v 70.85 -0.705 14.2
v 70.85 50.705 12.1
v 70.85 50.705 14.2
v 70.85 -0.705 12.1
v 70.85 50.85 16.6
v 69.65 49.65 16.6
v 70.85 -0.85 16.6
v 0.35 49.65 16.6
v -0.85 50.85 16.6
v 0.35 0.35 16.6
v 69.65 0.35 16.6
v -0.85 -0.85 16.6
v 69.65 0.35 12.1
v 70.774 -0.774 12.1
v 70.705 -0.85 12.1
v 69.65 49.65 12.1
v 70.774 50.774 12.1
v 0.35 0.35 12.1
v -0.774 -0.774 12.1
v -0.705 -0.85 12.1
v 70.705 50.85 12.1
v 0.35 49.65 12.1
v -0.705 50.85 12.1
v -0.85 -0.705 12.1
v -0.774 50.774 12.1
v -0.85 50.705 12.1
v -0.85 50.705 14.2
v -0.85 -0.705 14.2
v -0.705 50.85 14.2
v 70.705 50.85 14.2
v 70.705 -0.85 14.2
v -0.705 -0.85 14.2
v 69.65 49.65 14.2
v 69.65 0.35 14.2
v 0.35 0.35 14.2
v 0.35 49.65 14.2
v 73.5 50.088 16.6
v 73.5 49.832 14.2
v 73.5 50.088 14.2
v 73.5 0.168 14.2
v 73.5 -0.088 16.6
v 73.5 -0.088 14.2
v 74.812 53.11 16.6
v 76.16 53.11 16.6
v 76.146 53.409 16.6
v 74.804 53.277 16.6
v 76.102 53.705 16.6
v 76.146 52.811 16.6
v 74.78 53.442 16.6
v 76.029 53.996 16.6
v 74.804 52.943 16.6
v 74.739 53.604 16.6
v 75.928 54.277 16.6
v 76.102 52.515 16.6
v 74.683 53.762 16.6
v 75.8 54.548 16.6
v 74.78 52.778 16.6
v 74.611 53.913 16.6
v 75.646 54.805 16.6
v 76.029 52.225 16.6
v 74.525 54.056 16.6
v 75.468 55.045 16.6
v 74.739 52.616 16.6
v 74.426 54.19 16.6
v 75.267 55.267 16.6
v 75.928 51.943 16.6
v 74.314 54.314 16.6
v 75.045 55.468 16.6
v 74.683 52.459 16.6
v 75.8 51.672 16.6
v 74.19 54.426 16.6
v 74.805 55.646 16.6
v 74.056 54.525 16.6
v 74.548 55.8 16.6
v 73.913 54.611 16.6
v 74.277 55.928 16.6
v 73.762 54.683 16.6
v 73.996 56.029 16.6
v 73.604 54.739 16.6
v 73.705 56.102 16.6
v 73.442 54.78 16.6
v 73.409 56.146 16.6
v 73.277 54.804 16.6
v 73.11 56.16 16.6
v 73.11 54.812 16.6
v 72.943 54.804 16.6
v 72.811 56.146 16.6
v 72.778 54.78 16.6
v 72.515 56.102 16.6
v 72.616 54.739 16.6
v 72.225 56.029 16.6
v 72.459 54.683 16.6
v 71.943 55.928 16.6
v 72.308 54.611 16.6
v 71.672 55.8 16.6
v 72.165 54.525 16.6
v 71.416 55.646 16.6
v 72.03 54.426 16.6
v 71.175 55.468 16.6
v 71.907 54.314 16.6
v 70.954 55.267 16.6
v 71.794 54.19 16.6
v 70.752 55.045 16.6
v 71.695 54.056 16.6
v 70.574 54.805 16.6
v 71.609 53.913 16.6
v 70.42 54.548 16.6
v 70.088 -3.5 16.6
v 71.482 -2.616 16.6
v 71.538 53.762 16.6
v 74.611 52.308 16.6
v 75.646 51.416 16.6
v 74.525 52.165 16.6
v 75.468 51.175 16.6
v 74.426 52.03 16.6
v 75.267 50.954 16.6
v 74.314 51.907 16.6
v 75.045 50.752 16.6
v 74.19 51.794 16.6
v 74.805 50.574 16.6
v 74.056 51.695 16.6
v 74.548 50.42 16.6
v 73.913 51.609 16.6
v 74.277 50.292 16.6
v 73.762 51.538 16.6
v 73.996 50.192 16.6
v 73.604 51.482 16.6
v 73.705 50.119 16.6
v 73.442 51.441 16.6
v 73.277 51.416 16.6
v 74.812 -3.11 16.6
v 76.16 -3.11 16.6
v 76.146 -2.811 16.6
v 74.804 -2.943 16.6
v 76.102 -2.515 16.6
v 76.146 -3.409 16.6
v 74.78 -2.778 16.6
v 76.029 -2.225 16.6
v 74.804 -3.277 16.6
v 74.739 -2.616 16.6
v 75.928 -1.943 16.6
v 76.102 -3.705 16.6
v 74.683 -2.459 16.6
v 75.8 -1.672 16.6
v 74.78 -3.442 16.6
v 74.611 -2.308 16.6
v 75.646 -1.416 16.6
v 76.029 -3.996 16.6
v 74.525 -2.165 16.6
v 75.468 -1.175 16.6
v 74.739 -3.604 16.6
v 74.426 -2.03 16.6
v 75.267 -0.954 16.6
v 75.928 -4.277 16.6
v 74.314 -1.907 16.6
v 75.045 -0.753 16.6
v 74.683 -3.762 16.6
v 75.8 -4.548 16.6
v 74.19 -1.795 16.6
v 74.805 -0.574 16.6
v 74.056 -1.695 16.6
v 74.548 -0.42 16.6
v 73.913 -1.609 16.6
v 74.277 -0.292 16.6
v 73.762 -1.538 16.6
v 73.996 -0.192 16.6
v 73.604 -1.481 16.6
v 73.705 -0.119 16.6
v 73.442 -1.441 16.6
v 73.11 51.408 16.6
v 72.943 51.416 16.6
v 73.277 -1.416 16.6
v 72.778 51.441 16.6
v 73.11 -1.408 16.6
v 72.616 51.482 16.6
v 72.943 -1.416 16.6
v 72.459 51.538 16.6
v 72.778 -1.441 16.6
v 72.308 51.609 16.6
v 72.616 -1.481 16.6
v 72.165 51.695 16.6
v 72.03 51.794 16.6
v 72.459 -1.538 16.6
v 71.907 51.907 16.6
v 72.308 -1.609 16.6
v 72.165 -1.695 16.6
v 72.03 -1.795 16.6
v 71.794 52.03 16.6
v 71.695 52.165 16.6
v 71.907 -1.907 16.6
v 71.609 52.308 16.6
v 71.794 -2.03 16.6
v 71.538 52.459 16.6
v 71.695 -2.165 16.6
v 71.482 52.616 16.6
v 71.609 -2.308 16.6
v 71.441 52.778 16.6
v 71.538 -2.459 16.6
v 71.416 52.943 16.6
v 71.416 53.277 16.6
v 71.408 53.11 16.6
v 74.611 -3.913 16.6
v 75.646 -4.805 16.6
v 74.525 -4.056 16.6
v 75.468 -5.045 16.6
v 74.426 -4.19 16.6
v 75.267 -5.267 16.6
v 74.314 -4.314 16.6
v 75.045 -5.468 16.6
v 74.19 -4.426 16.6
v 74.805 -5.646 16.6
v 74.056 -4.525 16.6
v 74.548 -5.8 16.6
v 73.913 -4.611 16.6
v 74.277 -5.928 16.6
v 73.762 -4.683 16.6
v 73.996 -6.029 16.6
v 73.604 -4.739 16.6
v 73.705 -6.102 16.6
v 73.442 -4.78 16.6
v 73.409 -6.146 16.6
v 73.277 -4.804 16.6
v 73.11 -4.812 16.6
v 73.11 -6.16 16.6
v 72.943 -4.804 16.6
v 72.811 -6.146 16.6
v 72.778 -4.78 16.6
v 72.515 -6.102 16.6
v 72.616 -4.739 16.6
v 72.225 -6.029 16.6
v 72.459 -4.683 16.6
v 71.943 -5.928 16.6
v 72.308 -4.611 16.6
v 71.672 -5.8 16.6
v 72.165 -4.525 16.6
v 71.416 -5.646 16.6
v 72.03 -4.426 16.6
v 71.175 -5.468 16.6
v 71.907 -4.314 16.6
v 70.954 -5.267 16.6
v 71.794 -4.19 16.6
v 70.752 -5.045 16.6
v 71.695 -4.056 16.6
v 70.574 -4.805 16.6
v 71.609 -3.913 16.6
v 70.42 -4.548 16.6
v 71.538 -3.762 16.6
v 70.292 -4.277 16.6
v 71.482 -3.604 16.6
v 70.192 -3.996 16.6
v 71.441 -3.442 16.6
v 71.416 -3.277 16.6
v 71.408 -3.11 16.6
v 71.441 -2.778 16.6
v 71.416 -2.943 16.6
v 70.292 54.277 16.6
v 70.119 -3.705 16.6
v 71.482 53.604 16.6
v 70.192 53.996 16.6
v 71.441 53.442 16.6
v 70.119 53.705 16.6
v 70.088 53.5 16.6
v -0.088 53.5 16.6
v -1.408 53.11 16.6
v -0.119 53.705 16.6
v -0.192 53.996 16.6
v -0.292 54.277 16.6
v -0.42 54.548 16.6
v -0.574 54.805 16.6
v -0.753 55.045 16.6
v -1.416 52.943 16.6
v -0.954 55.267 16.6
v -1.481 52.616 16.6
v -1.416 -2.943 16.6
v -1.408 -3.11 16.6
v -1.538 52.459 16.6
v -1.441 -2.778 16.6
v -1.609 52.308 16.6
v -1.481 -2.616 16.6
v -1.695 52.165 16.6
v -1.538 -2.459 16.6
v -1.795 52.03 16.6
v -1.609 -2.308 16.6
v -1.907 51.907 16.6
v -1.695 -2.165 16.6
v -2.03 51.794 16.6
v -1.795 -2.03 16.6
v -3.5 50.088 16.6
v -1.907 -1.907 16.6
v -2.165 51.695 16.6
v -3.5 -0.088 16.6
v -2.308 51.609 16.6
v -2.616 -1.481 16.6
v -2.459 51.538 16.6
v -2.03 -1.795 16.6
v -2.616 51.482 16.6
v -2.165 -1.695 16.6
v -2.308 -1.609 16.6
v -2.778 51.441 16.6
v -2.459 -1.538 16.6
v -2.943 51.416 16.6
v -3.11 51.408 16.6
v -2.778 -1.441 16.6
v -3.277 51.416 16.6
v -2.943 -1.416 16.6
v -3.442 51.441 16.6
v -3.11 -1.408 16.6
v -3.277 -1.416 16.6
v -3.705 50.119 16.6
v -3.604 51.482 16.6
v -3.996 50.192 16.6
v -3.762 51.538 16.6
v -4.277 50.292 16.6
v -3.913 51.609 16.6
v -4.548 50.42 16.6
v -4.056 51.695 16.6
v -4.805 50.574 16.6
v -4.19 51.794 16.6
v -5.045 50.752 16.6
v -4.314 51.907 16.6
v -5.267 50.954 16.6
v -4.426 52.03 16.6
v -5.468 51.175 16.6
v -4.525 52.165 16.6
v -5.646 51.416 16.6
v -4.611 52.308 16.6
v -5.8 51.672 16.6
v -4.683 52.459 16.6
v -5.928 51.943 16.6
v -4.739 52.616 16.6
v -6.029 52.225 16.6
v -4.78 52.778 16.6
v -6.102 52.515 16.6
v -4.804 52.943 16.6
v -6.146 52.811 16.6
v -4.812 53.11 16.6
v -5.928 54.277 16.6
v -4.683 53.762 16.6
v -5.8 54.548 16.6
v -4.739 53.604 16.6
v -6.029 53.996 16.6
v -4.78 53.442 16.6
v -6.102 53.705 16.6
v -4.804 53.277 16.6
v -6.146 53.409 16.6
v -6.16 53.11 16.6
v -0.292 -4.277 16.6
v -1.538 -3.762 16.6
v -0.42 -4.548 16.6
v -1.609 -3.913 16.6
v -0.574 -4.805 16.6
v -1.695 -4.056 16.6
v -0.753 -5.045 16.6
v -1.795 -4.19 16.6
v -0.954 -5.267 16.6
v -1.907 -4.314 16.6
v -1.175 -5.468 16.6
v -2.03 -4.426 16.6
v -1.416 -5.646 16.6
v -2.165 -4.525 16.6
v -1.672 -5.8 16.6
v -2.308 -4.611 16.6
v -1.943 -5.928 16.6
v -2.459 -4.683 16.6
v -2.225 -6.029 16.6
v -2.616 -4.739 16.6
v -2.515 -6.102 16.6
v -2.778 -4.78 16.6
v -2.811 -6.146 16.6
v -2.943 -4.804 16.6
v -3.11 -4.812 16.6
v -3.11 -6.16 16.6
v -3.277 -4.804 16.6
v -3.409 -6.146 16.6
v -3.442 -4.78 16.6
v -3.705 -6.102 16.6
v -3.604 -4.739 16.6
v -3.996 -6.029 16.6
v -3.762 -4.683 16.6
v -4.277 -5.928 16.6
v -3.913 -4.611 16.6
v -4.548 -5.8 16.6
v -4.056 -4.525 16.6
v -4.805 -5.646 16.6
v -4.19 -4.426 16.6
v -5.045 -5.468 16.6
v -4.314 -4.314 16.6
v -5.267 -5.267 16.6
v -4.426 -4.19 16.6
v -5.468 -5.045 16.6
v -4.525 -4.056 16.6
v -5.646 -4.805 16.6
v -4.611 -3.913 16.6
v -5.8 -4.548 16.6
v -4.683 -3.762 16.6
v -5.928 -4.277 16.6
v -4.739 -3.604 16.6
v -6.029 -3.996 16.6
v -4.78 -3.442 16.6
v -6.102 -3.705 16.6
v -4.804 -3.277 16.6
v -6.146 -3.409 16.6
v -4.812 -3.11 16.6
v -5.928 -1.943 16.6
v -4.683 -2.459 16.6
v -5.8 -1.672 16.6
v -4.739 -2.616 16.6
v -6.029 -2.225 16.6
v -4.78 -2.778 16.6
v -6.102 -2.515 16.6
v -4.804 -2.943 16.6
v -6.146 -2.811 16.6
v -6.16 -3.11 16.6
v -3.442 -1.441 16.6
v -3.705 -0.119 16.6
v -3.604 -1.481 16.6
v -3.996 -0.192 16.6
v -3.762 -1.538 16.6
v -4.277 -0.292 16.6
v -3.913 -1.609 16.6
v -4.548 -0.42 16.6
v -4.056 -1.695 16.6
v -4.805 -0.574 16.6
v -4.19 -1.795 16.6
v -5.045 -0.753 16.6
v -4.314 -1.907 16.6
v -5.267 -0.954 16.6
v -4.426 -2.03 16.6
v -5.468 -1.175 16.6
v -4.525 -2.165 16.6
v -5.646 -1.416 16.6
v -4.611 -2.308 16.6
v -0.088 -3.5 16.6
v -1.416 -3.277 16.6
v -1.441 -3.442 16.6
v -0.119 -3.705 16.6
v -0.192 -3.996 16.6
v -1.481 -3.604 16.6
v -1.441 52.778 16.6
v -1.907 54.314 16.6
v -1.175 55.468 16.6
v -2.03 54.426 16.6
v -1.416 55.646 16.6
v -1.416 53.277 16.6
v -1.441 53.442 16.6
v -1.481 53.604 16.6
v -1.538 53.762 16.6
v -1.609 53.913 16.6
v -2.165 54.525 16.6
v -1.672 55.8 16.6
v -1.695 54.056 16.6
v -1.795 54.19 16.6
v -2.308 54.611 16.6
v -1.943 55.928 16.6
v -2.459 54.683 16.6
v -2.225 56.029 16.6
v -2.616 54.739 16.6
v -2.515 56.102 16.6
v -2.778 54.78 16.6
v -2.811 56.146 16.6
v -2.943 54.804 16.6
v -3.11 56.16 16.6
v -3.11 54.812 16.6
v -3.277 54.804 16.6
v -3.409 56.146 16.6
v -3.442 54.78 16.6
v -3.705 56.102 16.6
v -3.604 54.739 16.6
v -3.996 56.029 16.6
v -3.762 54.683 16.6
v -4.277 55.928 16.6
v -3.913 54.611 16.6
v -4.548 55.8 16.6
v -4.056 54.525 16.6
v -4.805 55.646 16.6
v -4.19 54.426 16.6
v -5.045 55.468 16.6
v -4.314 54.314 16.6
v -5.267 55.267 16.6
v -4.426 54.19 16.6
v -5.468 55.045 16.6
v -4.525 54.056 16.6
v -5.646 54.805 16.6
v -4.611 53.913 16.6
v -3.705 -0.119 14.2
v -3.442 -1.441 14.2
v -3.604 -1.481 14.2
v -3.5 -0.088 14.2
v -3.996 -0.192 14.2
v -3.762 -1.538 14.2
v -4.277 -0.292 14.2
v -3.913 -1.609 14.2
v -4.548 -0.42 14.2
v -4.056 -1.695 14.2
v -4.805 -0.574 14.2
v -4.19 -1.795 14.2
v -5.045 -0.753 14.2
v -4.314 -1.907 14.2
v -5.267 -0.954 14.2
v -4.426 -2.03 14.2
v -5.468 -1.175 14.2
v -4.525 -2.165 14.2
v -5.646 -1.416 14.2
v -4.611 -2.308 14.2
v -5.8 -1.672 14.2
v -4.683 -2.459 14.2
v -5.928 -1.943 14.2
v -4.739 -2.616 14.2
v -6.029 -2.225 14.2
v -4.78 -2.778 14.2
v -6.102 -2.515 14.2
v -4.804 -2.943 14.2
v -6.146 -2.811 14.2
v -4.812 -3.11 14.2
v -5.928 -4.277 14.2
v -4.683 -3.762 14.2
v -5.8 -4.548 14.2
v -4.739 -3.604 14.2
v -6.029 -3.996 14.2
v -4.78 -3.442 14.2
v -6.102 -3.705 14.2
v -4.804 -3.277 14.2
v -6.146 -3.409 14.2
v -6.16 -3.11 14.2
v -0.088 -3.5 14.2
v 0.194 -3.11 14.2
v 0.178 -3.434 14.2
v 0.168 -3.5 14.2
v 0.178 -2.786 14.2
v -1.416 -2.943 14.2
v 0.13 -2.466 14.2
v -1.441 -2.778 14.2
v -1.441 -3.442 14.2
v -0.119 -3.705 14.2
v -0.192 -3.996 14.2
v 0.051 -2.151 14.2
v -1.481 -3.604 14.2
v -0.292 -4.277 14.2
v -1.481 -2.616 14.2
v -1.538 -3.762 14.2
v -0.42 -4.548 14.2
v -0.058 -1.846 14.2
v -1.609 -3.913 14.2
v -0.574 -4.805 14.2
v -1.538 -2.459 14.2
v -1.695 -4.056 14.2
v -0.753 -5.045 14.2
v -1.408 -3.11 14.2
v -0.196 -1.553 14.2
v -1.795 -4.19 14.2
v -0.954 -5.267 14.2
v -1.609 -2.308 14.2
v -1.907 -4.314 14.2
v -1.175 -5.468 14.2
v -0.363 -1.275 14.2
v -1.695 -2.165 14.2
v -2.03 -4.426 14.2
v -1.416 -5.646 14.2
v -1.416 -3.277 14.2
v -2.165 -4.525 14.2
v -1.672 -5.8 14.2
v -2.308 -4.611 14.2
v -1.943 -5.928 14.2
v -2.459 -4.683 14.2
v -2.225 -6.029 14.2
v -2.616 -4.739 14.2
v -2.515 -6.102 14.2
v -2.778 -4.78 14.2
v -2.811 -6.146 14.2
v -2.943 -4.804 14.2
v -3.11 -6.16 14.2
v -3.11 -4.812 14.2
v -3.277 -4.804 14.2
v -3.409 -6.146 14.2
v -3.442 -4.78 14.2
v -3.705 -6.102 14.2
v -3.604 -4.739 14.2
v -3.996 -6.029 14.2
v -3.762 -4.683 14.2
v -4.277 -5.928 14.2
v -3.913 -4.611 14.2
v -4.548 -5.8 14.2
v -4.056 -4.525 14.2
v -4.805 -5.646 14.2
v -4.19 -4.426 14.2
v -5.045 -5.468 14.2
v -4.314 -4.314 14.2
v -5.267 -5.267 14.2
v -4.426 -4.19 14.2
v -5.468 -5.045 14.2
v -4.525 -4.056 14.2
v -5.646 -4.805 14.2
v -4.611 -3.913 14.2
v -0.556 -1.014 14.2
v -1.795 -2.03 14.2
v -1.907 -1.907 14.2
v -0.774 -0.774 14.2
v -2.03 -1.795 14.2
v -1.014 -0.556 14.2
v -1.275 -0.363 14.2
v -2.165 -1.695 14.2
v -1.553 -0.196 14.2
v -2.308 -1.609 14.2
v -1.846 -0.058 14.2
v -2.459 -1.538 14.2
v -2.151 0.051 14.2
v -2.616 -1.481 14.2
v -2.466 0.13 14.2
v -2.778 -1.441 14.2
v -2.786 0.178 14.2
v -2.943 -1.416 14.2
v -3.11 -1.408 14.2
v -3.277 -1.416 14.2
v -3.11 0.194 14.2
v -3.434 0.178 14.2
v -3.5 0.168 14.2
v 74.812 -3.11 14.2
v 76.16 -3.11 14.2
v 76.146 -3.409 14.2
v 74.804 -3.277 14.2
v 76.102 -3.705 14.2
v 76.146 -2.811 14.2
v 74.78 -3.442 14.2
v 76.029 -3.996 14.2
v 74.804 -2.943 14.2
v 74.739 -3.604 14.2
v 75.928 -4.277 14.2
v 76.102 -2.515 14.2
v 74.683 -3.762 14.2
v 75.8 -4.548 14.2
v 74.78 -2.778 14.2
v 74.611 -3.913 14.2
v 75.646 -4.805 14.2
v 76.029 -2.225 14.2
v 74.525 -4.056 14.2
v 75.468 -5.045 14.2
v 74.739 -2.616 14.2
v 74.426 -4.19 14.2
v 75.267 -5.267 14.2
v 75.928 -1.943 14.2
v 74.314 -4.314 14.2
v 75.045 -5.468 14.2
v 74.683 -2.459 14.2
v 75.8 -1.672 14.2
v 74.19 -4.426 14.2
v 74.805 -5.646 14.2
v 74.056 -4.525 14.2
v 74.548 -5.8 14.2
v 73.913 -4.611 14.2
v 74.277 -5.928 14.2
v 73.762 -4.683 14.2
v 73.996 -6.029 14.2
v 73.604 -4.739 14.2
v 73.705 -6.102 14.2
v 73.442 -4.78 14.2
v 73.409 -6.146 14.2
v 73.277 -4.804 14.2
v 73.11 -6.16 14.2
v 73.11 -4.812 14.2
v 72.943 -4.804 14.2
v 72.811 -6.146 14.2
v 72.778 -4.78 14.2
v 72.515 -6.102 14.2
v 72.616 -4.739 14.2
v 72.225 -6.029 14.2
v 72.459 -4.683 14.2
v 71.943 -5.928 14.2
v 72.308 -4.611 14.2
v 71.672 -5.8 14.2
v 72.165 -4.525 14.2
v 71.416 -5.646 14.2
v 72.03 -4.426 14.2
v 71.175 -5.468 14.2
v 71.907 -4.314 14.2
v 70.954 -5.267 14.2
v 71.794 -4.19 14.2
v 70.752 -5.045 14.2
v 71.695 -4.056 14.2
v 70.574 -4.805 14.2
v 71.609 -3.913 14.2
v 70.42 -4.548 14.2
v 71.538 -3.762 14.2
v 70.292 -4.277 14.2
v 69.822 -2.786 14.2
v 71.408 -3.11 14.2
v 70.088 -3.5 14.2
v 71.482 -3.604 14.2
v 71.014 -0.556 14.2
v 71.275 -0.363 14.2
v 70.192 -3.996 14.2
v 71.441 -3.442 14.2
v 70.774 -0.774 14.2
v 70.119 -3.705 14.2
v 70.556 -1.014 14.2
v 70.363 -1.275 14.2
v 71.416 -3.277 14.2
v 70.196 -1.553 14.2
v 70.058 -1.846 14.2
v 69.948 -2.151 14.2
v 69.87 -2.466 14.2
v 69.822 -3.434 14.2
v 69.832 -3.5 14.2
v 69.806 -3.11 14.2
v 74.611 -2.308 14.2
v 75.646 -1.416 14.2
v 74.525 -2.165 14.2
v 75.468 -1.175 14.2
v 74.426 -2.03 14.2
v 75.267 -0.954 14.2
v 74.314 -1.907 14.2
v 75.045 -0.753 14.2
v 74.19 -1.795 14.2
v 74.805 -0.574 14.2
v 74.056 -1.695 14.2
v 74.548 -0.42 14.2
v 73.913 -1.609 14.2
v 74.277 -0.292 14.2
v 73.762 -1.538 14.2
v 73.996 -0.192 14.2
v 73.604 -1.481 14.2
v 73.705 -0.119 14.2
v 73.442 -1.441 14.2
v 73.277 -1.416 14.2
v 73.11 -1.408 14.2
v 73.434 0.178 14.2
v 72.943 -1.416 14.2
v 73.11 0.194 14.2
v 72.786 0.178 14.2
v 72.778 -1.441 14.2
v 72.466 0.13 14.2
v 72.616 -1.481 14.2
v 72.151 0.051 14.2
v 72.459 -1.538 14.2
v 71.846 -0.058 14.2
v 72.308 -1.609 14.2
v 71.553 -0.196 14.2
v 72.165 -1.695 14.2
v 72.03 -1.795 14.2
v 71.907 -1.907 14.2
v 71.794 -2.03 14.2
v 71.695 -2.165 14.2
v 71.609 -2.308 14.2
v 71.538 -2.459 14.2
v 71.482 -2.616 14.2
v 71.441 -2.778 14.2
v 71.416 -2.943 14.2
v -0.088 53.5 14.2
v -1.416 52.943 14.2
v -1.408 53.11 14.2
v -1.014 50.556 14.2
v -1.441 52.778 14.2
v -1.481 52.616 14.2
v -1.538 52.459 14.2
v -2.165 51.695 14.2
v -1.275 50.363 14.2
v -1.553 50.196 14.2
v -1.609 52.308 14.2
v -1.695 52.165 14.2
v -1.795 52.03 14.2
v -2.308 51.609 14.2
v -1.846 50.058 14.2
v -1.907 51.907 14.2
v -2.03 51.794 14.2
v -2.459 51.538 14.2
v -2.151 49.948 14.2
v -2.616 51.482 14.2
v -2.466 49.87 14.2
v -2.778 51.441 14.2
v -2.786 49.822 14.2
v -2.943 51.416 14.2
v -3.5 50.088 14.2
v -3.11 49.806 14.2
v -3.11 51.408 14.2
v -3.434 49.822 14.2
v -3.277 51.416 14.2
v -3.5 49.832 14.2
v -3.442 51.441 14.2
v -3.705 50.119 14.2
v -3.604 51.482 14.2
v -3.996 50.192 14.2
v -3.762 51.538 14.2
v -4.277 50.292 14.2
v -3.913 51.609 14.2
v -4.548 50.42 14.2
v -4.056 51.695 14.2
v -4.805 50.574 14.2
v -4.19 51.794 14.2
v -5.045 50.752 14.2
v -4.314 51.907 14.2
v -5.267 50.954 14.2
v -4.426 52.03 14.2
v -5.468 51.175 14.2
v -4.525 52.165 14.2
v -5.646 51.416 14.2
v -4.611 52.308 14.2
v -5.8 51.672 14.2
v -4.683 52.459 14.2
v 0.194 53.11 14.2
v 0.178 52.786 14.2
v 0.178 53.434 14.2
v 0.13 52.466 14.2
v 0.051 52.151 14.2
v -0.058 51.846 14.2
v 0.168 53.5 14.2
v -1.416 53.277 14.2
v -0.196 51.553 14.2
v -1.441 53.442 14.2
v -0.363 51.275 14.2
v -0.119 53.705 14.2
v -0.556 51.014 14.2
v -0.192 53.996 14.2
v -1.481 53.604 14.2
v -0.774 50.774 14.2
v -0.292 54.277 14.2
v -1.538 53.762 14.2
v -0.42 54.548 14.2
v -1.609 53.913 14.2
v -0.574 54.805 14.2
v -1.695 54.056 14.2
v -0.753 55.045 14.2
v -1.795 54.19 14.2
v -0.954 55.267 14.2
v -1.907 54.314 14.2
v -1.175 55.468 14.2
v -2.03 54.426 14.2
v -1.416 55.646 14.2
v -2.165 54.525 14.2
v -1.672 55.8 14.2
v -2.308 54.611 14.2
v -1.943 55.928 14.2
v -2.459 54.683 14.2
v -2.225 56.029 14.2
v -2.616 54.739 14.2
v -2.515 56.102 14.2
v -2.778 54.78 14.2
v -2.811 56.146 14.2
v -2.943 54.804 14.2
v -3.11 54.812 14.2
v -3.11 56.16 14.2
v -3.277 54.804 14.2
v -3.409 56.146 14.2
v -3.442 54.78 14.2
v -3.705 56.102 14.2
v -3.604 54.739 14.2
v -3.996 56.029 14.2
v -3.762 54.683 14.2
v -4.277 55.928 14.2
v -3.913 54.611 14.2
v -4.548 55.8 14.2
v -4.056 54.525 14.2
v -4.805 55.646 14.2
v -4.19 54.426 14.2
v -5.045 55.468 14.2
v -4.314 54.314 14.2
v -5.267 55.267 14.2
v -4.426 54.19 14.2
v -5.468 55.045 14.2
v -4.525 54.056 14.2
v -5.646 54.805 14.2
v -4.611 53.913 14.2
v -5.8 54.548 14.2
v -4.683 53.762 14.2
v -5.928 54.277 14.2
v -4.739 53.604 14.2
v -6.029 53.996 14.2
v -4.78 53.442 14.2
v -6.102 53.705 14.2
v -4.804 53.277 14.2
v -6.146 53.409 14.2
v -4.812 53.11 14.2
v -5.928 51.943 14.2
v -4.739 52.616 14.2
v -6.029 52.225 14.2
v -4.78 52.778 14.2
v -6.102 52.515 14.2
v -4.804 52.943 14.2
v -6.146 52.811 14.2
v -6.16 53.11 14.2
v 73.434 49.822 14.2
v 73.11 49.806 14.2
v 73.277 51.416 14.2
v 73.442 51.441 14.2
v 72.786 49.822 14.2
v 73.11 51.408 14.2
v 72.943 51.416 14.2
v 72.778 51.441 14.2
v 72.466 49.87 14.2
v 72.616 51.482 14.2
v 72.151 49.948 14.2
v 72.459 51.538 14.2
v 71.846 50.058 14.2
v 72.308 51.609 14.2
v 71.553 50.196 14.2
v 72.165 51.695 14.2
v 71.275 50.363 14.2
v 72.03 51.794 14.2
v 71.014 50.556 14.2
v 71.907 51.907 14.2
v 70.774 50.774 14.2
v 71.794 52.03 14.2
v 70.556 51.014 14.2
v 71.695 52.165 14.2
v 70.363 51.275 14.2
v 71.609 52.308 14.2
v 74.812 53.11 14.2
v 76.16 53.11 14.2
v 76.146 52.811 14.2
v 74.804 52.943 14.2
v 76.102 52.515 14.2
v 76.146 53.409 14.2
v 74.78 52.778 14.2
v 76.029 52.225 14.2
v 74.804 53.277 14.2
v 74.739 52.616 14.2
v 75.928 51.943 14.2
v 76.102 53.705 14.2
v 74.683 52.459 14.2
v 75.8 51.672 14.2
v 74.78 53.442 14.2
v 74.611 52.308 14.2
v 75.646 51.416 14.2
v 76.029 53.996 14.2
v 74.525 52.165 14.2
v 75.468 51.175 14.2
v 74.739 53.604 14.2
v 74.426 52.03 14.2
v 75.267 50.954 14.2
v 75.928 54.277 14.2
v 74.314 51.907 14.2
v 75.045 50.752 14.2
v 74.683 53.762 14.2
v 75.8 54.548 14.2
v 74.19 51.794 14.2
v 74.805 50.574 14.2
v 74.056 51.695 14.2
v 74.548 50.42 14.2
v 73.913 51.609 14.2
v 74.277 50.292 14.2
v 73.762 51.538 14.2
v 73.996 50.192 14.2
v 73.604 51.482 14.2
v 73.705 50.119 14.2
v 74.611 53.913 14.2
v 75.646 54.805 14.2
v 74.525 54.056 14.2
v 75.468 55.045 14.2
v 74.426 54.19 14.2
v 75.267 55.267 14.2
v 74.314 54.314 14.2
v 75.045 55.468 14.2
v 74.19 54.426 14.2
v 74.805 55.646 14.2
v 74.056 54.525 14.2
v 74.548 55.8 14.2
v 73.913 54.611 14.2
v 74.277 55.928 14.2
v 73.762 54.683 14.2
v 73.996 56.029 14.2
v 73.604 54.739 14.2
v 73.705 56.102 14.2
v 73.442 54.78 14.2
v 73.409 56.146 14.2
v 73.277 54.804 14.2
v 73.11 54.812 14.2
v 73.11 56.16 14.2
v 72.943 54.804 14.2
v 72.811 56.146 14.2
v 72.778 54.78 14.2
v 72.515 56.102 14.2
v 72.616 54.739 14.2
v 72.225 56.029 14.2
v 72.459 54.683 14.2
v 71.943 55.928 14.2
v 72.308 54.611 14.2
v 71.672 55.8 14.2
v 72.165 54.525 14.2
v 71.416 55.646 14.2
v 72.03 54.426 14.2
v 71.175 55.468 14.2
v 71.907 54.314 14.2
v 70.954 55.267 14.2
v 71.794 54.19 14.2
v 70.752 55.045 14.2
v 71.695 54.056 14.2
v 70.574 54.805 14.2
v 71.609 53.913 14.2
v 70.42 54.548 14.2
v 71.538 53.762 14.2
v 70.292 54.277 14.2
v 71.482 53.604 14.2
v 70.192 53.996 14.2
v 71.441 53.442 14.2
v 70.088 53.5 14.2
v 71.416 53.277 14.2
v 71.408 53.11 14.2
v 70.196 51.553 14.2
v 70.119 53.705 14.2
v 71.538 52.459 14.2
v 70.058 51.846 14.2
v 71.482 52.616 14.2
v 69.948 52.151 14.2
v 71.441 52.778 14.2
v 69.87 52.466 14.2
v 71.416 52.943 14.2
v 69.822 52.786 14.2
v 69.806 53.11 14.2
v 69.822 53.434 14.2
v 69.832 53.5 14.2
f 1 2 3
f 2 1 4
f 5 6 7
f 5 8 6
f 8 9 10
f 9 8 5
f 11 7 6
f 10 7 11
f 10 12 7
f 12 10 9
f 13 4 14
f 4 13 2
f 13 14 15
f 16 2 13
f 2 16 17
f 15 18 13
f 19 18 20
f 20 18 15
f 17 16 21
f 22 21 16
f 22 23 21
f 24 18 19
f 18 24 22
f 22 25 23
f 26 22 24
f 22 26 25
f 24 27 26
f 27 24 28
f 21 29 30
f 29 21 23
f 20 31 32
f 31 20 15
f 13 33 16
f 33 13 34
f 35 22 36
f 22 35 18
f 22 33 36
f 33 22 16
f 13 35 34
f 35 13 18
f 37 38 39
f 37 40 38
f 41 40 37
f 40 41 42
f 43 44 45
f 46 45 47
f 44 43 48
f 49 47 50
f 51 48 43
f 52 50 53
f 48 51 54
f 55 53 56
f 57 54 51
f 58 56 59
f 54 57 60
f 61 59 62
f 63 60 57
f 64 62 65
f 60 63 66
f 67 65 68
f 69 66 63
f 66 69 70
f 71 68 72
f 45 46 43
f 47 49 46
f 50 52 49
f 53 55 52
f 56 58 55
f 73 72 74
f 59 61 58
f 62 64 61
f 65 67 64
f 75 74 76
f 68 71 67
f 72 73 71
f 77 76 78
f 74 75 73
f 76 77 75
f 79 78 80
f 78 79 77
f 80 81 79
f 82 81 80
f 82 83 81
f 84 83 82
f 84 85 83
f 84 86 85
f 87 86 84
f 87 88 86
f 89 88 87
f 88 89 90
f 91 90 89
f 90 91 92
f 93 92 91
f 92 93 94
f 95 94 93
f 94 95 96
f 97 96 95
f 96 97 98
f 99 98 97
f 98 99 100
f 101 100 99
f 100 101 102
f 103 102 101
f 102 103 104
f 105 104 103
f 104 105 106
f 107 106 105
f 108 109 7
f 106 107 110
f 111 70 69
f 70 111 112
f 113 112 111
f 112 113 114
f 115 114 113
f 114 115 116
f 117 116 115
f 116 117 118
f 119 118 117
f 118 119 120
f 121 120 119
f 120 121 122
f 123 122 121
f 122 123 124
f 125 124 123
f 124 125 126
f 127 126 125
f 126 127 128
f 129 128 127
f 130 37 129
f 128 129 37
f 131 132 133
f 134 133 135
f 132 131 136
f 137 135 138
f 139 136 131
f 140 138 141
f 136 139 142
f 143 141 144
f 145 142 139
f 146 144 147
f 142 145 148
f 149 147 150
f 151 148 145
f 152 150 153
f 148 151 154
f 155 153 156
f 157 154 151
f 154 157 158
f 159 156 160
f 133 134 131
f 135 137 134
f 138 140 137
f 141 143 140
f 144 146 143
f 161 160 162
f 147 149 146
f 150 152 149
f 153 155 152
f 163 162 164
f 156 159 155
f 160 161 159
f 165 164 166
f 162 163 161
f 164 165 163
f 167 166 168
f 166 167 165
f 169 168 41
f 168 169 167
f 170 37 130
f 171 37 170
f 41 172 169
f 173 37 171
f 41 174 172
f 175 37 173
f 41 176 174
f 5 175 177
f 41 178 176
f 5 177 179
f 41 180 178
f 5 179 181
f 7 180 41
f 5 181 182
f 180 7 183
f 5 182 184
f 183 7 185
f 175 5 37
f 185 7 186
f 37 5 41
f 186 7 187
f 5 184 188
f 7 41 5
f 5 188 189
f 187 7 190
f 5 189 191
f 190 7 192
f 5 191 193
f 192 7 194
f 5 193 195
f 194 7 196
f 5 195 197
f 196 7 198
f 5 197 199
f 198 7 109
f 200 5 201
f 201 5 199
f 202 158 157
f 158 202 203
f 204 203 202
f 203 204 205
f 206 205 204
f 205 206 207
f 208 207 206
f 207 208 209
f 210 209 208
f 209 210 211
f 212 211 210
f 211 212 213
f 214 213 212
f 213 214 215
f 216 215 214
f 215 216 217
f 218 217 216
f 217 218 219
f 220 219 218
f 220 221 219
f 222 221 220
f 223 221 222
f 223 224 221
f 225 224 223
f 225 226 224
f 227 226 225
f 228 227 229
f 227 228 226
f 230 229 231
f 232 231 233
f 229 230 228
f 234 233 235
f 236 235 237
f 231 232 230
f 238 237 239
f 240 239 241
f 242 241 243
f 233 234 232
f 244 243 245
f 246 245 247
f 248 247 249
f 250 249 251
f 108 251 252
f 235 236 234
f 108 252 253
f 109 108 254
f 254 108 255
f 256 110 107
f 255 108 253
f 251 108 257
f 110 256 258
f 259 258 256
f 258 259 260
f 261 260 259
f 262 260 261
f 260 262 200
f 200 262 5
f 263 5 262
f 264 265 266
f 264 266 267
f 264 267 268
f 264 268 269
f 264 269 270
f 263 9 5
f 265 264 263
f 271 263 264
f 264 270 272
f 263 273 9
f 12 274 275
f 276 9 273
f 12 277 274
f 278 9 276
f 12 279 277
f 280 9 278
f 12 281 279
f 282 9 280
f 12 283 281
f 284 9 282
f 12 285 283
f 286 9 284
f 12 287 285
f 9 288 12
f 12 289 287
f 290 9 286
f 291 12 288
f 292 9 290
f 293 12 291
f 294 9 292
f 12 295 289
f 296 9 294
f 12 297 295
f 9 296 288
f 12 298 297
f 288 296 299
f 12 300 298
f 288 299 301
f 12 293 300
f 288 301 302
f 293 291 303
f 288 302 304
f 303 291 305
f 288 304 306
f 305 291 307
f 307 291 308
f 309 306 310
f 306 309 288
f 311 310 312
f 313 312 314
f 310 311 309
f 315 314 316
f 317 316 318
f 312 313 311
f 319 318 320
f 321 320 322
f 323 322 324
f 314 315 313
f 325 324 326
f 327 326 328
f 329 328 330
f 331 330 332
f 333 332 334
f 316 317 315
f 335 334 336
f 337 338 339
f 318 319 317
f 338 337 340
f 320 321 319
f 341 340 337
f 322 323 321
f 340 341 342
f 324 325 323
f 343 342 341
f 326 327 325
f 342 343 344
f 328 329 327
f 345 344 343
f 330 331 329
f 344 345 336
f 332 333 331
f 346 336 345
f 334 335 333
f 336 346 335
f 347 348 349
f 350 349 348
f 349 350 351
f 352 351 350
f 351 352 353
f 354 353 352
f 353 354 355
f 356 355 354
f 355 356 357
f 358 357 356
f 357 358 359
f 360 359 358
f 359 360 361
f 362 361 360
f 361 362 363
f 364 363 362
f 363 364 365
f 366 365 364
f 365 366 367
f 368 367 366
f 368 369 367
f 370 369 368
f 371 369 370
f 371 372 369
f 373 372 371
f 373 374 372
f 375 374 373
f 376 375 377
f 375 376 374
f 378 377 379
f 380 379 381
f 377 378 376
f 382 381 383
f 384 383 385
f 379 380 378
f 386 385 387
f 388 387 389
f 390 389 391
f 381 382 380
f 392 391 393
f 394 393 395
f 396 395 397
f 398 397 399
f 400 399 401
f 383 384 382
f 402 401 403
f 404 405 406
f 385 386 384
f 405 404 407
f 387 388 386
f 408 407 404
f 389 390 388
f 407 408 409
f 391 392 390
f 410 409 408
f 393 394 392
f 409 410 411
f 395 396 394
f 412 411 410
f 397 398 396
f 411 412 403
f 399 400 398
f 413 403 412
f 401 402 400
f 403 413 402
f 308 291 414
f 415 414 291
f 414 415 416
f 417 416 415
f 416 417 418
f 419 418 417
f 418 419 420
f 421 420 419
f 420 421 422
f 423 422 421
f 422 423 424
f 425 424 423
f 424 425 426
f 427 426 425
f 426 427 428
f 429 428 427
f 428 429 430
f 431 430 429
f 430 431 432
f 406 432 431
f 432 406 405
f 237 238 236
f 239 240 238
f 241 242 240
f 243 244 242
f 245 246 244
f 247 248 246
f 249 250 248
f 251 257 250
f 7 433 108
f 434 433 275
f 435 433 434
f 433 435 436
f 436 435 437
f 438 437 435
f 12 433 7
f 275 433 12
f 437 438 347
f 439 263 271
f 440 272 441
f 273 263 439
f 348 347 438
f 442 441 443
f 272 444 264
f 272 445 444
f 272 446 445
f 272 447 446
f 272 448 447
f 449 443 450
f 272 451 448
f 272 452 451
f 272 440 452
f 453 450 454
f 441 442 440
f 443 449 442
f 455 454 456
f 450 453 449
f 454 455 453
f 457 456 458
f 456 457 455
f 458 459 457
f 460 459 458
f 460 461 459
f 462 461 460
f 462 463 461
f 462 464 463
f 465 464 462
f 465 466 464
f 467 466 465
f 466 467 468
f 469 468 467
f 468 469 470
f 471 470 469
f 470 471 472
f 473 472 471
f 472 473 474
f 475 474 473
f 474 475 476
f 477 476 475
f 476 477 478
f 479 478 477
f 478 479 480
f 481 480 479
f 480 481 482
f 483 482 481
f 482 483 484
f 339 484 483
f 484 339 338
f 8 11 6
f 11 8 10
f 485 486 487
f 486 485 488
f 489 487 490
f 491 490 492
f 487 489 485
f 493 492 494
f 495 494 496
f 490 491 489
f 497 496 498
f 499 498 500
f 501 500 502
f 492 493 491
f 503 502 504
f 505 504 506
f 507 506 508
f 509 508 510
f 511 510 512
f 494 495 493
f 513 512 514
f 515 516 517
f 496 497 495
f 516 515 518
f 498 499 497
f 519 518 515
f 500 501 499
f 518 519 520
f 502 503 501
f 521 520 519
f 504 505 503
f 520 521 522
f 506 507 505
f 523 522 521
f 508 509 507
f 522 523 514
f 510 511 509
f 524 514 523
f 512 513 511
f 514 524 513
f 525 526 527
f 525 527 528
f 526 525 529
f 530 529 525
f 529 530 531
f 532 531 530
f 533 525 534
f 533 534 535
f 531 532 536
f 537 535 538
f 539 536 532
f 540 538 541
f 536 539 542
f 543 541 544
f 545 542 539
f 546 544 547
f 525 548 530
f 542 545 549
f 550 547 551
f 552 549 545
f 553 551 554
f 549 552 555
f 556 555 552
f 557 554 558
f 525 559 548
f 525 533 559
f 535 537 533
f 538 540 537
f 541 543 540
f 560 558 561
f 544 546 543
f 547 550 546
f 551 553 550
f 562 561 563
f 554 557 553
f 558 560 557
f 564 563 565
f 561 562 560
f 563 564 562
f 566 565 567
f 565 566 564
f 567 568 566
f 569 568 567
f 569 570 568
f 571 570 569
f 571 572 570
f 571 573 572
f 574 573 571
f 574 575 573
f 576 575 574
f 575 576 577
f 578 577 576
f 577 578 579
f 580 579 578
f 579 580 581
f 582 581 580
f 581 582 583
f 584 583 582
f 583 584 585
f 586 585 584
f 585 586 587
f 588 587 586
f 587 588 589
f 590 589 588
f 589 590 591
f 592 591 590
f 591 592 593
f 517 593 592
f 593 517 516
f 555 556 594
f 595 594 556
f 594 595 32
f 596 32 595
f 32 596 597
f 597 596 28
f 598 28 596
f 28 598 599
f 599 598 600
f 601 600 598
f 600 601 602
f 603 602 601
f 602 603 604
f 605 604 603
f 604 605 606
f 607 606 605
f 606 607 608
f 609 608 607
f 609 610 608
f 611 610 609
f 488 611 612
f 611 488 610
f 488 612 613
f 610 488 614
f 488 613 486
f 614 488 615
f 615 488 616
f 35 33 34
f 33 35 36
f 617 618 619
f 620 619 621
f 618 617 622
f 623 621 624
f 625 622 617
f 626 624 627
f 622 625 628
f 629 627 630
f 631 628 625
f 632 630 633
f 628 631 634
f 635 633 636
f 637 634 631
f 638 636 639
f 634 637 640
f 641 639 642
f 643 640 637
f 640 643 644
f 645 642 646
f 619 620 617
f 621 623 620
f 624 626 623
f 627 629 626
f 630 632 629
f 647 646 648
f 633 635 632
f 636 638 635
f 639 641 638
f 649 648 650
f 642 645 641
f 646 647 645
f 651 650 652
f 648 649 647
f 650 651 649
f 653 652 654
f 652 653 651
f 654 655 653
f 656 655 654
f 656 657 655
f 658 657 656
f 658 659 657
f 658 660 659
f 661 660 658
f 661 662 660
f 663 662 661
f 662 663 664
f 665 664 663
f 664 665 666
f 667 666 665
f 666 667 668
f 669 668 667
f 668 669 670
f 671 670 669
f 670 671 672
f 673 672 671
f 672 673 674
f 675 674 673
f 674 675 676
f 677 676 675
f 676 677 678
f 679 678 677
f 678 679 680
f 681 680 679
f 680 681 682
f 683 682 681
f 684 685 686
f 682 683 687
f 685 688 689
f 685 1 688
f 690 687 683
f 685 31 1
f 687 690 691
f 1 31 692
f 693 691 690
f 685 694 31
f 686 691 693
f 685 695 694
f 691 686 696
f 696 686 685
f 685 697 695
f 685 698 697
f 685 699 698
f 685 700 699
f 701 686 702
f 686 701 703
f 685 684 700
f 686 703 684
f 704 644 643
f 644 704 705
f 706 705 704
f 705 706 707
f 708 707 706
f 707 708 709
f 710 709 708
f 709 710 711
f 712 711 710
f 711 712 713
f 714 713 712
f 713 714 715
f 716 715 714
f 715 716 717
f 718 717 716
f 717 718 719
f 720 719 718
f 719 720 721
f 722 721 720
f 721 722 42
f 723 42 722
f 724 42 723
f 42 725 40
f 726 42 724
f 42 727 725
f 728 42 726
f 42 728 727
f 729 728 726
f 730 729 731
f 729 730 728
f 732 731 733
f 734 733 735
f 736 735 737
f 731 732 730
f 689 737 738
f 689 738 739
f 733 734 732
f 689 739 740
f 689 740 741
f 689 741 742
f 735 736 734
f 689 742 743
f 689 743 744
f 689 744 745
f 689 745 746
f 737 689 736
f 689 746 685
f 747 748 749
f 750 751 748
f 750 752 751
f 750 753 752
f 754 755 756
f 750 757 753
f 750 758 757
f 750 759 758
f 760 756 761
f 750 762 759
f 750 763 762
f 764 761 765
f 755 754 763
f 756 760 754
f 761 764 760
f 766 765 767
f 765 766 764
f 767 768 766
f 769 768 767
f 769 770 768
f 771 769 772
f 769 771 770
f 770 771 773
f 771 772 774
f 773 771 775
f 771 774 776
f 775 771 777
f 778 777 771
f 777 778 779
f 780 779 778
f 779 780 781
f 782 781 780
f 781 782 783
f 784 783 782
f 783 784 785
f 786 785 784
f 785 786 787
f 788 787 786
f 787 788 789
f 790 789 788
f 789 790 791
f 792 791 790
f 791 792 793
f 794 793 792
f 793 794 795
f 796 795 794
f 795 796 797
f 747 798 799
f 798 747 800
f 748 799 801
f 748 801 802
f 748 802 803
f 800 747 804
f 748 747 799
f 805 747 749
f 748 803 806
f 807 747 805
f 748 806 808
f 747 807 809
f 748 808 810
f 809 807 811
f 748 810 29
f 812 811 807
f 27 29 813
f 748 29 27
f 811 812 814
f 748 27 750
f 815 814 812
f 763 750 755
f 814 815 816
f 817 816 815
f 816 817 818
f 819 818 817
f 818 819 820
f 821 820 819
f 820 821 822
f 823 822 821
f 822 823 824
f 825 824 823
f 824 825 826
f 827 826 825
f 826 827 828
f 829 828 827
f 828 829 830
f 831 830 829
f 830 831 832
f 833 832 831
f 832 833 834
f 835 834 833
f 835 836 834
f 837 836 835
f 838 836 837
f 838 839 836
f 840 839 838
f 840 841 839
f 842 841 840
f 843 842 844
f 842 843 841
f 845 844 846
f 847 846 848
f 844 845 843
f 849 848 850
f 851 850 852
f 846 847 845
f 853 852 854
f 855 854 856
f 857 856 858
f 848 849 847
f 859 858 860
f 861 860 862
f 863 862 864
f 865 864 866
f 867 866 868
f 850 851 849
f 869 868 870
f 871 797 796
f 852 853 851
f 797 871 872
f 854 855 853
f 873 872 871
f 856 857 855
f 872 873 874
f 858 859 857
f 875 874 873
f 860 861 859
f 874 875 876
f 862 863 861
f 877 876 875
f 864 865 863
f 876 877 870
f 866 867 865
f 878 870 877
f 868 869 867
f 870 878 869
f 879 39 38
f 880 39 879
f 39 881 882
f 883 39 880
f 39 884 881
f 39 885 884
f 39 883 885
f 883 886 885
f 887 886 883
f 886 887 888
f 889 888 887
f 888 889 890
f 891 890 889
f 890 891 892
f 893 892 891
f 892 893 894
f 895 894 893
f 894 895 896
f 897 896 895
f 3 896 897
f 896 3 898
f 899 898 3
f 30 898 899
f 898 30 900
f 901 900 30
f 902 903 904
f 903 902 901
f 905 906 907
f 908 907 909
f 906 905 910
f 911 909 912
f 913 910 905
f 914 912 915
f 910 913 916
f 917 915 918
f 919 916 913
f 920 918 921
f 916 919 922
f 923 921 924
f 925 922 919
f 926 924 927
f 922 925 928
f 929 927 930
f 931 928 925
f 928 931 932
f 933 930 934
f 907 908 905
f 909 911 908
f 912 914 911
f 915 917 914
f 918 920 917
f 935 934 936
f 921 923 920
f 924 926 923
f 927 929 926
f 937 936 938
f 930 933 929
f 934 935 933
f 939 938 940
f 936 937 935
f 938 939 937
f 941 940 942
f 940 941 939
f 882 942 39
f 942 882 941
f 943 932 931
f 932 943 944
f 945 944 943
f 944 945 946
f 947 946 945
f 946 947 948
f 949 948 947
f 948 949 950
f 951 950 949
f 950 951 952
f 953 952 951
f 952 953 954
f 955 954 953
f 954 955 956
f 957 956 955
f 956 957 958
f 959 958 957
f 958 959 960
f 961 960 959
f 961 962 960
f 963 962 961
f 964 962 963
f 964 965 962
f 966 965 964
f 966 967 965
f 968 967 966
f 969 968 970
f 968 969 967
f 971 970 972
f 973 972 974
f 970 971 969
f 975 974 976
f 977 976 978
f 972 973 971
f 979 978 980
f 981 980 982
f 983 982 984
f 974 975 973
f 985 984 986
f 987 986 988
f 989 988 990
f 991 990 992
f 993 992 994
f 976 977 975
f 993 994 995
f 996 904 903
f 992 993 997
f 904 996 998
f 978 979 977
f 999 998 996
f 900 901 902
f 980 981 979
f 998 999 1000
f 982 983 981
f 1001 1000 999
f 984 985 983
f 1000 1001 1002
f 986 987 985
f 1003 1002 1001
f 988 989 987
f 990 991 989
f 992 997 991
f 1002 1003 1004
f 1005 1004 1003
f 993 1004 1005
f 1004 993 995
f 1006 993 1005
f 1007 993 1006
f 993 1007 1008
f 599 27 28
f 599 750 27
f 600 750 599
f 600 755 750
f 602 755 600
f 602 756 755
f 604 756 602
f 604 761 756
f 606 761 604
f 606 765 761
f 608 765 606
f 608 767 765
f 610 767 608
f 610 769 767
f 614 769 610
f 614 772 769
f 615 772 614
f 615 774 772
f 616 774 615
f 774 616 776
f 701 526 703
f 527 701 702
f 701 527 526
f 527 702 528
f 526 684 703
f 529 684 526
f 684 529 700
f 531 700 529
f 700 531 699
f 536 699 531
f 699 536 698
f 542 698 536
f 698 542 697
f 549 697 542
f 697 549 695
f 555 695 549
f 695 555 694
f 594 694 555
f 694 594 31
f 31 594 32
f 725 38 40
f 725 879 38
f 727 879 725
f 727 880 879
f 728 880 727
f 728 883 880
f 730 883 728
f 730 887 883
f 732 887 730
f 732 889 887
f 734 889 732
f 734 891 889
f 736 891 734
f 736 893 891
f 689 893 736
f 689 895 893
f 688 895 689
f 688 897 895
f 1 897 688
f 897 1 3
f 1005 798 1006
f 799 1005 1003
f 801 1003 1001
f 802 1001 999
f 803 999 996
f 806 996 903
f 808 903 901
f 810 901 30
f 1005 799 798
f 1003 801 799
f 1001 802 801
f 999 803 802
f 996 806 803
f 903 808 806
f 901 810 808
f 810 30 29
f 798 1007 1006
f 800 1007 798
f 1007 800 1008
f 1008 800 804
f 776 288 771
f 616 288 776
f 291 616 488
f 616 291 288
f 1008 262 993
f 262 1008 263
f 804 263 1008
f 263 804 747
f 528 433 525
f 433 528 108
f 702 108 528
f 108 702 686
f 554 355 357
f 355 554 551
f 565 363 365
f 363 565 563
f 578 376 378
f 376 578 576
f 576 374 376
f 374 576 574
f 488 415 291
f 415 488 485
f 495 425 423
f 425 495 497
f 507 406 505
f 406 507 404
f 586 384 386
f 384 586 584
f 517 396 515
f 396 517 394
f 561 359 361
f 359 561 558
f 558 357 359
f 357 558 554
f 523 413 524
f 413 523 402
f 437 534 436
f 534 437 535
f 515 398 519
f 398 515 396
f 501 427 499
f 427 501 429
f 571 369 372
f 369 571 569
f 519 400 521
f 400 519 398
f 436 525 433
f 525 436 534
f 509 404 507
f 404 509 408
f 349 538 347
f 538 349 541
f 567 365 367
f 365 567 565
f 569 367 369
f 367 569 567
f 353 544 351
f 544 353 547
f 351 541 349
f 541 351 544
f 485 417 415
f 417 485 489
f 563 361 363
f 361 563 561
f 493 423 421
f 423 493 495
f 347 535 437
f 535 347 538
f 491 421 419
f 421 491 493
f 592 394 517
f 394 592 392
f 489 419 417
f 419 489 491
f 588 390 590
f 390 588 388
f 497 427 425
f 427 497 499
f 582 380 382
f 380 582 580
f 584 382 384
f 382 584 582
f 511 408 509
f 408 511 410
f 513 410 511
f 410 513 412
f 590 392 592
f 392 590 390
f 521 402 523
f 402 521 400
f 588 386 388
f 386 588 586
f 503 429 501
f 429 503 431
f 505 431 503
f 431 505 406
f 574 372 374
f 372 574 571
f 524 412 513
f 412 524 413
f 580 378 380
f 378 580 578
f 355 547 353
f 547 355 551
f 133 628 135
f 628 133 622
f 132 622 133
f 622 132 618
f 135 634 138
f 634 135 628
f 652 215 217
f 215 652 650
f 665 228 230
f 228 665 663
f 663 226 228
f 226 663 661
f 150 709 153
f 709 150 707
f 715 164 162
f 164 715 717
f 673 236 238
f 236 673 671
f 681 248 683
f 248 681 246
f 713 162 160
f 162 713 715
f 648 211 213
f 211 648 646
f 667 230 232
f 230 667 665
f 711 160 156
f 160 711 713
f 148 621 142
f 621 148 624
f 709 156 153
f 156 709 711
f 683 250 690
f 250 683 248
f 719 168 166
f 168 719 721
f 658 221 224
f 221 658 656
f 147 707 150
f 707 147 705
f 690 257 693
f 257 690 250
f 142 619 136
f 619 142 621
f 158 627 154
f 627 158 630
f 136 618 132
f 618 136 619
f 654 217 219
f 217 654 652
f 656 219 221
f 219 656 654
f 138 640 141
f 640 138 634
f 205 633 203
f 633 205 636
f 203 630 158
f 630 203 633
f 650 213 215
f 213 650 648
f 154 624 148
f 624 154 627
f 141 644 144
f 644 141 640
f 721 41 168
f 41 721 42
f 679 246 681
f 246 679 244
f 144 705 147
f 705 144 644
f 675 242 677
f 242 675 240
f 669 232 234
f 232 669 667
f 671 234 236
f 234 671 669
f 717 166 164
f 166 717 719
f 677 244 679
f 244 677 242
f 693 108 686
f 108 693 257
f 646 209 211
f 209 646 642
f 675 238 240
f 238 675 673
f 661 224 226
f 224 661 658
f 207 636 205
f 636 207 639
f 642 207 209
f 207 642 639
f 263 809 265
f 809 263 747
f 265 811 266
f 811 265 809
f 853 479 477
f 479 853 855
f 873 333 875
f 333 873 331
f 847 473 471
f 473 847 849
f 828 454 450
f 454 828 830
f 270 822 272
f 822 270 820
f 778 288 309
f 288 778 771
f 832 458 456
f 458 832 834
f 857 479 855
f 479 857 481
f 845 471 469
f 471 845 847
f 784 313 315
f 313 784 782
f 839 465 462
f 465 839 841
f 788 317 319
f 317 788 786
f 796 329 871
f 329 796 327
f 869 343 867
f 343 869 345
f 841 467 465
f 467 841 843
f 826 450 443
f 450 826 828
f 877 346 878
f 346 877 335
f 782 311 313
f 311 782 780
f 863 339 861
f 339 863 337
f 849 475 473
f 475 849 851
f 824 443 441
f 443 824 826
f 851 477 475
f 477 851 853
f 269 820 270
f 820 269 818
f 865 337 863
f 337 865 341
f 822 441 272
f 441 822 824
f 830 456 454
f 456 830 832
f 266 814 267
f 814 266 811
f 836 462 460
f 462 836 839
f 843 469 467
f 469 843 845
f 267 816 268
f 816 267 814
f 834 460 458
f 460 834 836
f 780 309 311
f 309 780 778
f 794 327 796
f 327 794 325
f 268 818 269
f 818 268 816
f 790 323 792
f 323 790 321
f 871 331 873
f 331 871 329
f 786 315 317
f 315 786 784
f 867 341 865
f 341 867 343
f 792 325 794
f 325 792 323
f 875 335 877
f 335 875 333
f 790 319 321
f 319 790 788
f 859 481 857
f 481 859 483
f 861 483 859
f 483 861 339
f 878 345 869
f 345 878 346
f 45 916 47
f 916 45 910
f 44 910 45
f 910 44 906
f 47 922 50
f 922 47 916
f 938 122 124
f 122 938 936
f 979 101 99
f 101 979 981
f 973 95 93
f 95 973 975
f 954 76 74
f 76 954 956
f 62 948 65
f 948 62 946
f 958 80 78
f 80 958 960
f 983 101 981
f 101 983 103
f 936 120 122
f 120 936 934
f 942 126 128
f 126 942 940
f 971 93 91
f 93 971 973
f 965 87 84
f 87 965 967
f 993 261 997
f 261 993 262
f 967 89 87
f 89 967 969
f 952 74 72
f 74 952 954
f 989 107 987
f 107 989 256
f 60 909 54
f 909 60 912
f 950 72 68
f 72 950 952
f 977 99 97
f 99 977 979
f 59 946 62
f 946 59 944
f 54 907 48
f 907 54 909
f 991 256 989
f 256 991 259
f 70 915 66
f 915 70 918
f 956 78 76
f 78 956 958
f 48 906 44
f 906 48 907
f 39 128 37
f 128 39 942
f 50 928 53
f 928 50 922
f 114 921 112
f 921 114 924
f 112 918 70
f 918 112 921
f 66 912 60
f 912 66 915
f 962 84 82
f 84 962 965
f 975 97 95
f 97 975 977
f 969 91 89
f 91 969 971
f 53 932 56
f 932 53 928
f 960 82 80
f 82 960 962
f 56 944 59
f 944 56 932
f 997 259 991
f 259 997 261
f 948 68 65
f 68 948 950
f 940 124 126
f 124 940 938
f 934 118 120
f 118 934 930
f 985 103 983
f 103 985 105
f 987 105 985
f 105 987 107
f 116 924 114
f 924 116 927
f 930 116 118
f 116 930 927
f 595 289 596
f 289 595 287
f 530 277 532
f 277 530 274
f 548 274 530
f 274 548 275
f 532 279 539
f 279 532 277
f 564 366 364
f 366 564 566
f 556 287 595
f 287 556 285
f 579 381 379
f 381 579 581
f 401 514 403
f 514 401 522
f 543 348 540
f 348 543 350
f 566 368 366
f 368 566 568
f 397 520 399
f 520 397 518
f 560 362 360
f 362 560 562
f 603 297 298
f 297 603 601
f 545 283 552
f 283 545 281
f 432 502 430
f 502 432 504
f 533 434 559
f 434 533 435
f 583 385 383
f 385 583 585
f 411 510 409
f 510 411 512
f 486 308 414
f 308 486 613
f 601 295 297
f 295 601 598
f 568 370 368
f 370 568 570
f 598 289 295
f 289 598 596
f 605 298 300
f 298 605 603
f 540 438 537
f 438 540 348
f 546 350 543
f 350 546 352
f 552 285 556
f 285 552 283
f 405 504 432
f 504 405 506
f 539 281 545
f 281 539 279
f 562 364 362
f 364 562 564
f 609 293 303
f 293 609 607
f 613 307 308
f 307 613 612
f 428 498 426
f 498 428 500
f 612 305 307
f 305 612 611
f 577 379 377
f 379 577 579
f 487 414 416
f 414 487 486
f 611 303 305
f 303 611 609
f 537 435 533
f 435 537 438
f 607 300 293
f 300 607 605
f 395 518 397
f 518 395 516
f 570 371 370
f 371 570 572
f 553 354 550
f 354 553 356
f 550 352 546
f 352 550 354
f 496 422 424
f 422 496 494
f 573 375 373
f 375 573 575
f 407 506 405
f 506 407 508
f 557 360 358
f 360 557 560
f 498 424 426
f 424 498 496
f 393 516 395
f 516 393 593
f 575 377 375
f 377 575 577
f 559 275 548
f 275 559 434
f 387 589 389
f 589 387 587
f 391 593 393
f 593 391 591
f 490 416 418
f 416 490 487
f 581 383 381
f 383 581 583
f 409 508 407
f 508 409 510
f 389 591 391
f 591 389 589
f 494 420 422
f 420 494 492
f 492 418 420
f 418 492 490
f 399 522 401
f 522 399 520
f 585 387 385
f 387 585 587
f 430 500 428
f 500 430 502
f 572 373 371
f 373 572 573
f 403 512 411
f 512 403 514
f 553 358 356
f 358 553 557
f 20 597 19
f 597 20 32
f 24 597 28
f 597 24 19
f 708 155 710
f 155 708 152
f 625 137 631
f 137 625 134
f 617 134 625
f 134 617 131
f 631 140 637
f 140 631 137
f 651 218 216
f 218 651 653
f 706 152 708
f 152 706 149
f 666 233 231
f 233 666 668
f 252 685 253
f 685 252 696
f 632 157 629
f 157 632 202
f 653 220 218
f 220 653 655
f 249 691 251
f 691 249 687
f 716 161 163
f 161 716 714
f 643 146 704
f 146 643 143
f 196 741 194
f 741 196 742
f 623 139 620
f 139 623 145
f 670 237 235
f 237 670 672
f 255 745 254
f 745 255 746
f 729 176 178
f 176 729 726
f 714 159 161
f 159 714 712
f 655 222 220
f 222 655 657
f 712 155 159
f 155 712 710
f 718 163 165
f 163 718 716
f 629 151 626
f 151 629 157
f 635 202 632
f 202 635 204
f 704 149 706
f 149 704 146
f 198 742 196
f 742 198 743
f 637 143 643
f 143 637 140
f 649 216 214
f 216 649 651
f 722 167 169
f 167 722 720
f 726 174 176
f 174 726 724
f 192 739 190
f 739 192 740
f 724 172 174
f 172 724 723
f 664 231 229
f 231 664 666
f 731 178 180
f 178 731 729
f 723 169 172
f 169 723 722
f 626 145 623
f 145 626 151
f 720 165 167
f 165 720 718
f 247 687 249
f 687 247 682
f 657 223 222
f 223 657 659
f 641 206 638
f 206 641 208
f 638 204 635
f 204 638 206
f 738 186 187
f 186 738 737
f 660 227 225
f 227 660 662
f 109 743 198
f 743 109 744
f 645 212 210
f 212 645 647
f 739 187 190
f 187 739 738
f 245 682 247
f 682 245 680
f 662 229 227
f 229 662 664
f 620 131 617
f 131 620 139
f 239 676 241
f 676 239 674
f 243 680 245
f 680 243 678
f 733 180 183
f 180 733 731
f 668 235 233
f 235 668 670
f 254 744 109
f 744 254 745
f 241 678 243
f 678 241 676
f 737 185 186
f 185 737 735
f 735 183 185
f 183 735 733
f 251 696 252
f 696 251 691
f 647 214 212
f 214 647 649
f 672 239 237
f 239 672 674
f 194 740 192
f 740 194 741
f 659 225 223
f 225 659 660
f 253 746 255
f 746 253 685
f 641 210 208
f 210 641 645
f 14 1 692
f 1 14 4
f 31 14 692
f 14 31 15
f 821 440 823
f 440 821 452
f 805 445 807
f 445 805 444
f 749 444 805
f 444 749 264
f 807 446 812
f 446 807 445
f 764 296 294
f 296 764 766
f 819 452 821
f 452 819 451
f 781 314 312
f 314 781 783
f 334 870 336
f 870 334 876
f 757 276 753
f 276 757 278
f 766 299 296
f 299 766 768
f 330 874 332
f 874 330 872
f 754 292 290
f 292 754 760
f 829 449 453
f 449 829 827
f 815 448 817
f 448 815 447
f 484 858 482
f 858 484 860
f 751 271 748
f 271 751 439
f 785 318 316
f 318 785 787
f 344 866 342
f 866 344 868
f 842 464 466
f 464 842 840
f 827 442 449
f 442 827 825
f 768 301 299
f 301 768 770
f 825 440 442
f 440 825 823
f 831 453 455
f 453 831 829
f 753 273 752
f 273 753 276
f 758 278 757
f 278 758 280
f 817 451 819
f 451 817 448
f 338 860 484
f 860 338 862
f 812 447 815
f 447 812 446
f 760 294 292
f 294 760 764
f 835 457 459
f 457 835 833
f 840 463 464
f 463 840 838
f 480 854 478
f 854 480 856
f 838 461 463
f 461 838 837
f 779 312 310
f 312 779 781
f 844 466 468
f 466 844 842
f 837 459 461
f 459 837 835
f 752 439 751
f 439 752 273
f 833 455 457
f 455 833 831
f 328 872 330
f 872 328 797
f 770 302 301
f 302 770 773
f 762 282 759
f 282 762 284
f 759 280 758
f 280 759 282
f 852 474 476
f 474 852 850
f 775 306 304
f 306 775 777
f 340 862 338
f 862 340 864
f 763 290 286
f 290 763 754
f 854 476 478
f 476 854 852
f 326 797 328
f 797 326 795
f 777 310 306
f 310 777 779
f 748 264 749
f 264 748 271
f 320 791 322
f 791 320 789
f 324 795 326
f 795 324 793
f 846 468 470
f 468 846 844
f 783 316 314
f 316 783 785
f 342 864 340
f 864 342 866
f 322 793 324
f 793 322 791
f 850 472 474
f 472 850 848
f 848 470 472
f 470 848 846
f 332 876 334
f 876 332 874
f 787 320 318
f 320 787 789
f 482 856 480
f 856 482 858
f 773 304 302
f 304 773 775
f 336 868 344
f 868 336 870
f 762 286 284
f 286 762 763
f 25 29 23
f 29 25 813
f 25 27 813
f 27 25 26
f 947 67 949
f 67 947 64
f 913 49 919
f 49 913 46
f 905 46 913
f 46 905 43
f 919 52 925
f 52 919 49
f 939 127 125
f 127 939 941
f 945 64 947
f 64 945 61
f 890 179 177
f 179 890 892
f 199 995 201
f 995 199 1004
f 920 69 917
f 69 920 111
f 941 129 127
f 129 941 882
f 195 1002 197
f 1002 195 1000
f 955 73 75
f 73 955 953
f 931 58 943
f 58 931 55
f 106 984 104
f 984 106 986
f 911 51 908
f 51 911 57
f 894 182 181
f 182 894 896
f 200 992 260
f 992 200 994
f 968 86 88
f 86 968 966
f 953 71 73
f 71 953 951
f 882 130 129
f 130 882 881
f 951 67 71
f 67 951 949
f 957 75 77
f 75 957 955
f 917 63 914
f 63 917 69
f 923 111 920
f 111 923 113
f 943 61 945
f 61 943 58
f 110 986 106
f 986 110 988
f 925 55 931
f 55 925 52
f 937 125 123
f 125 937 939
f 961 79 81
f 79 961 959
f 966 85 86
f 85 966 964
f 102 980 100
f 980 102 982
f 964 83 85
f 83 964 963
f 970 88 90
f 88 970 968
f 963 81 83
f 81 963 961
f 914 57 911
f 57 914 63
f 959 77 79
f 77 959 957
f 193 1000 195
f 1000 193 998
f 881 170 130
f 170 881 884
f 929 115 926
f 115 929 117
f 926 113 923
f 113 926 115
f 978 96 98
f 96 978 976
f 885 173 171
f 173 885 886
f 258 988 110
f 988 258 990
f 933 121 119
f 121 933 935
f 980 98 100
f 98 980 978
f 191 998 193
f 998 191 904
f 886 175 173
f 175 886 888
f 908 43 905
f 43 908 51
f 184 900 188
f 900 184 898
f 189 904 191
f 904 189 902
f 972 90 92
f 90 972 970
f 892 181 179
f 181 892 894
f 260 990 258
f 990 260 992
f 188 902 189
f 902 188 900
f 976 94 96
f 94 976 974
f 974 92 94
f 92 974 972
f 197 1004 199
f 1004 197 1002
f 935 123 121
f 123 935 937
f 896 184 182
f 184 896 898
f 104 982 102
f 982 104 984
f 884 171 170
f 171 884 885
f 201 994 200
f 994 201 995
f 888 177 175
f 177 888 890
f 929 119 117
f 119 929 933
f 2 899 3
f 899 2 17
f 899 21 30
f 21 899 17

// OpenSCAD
// body lid
difference() {
  union() {
    // body lid (lid_plate)
    multmatrix([[1, 0, 0, 35], [0, 1, 0, 25], [0, 0, 1, 14.2], [0, 0, 0, 1]]) translate([-38.5, -28.5, 0]) cube([77, 57, 2.4]);
    // add lid_lip (lip)
    multmatrix([[1, 0, 0, 35], [0, 1, 0, 25], [0, 0, 1, 12.1], [0, 0, 0, 1]]) difference() { translate([-35.85, -25.85, 0]) cube([71.7, 51.7, 4.5]); translate([0, 0, -1]) translate([-34.65, -24.65, 0]) cube([69.3, 49.3, 6.5]); }
    // add boss_1_pad (pad)
    multmatrix([[1, 0, 0, -3.110229], [0, 1, 0, -3.110229], [0, 0, 1, 14.2], [0, 0, 0, 1]]) cylinder(h=2.4, d=6.1, $fn=64);
    // add boss_2_pad (pad)
    multmatrix([[1, 0, 0, 73.110229], [0, 1, 0, -3.110229], [0, 0, 1, 14.2], [0, 0, 0, 1]]) cylinder(h=2.4, d=6.1, $fn=64);
    // add boss_3_pad (pad)
    multmatrix([[1, 0, 0, -3.110229], [0, 1, 0, 53.110229], [0, 0, 1, 14.2], [0, 0, 0, 1]]) cylinder(h=2.4, d=6.1, $fn=64);
    // add boss_4_pad (pad)
    multmatrix([[1, 0, 0, 73.110229], [0, 1, 0, 53.110229], [0, 0, 1, 14.2], [0, 0, 0, 1]]) cylinder(h=2.4, d=6.1, $fn=64);
  }
  // cut boss_1_lid_hole (screw_hole)
  multmatrix([[1, 0, 0, -3.110229], [0, 1, 0, -3.110229], [0, 0, 1, 13.2], [0, 0, 0, 1]]) cylinder(h=4.4, d=3.4041, $fn=64);
  // cut boss_1_lip_notch (lip_notch)
  multmatrix([[1, 0, 0, -3.110229], [0, 1, 0, -3.110229], [0, 0, 1, 11.1], [0, 0, 0, 1]]) cylinder(h=3.1, d=6.60796, $fn=64);
  // cut boss_2_lid_hole (screw_hole)
  multmatrix([[1, 0, 0, 73.110229], [0, 1, 0, -3.110229], [0, 0, 1, 13.2], [0, 0, 0, 1]]) cylinder(h=4.4, d=3.4041, $fn=64);
  // cut boss_2_lip_notch (lip_notch)
  multmatrix([[1, 0, 0, 73.110229], [0, 1, 0, -3.110229], [0, 0, 1, 11.1], [0, 0, 0, 1]]) cylinder(h=3.1, d=6.60796, $fn=64);
  // cut boss_3_lid_hole (screw_hole)
  multmatrix([[1, 0, 0, -3.110229], [0, 1, 0, 53.110229], [0, 0, 1, 13.2], [0, 0, 0, 1]]) cylinder(h=4.4, d=3.4041, $fn=64);
  // cut boss_3_lip_notch (lip_notch)
  multmatrix([[1, 0, 0, -3.110229], [0, 1, 0, 53.110229], [0, 0, 1, 11.1], [0, 0, 0, 1]]) cylinder(h=3.1, d=6.60796, $fn=64);
  // cut boss_4_lid_hole (screw_hole)
  multmatrix([[1, 0, 0, 73.110229], [0, 1, 0, 53.110229], [0, 0, 1, 13.2], [0, 0, 0, 1]]) cylinder(h=4.4, d=3.4041, $fn=64);
  // cut boss_4_lip_notch (lip_notch)
  multmatrix([[1, 0, 0, 73.110229], [0, 1, 0, 53.110229], [0, 0, 1, 11.1], [0, 0, 0, 1]]) cylinder(h=3.1, d=6.60796, $fn=64);
}
